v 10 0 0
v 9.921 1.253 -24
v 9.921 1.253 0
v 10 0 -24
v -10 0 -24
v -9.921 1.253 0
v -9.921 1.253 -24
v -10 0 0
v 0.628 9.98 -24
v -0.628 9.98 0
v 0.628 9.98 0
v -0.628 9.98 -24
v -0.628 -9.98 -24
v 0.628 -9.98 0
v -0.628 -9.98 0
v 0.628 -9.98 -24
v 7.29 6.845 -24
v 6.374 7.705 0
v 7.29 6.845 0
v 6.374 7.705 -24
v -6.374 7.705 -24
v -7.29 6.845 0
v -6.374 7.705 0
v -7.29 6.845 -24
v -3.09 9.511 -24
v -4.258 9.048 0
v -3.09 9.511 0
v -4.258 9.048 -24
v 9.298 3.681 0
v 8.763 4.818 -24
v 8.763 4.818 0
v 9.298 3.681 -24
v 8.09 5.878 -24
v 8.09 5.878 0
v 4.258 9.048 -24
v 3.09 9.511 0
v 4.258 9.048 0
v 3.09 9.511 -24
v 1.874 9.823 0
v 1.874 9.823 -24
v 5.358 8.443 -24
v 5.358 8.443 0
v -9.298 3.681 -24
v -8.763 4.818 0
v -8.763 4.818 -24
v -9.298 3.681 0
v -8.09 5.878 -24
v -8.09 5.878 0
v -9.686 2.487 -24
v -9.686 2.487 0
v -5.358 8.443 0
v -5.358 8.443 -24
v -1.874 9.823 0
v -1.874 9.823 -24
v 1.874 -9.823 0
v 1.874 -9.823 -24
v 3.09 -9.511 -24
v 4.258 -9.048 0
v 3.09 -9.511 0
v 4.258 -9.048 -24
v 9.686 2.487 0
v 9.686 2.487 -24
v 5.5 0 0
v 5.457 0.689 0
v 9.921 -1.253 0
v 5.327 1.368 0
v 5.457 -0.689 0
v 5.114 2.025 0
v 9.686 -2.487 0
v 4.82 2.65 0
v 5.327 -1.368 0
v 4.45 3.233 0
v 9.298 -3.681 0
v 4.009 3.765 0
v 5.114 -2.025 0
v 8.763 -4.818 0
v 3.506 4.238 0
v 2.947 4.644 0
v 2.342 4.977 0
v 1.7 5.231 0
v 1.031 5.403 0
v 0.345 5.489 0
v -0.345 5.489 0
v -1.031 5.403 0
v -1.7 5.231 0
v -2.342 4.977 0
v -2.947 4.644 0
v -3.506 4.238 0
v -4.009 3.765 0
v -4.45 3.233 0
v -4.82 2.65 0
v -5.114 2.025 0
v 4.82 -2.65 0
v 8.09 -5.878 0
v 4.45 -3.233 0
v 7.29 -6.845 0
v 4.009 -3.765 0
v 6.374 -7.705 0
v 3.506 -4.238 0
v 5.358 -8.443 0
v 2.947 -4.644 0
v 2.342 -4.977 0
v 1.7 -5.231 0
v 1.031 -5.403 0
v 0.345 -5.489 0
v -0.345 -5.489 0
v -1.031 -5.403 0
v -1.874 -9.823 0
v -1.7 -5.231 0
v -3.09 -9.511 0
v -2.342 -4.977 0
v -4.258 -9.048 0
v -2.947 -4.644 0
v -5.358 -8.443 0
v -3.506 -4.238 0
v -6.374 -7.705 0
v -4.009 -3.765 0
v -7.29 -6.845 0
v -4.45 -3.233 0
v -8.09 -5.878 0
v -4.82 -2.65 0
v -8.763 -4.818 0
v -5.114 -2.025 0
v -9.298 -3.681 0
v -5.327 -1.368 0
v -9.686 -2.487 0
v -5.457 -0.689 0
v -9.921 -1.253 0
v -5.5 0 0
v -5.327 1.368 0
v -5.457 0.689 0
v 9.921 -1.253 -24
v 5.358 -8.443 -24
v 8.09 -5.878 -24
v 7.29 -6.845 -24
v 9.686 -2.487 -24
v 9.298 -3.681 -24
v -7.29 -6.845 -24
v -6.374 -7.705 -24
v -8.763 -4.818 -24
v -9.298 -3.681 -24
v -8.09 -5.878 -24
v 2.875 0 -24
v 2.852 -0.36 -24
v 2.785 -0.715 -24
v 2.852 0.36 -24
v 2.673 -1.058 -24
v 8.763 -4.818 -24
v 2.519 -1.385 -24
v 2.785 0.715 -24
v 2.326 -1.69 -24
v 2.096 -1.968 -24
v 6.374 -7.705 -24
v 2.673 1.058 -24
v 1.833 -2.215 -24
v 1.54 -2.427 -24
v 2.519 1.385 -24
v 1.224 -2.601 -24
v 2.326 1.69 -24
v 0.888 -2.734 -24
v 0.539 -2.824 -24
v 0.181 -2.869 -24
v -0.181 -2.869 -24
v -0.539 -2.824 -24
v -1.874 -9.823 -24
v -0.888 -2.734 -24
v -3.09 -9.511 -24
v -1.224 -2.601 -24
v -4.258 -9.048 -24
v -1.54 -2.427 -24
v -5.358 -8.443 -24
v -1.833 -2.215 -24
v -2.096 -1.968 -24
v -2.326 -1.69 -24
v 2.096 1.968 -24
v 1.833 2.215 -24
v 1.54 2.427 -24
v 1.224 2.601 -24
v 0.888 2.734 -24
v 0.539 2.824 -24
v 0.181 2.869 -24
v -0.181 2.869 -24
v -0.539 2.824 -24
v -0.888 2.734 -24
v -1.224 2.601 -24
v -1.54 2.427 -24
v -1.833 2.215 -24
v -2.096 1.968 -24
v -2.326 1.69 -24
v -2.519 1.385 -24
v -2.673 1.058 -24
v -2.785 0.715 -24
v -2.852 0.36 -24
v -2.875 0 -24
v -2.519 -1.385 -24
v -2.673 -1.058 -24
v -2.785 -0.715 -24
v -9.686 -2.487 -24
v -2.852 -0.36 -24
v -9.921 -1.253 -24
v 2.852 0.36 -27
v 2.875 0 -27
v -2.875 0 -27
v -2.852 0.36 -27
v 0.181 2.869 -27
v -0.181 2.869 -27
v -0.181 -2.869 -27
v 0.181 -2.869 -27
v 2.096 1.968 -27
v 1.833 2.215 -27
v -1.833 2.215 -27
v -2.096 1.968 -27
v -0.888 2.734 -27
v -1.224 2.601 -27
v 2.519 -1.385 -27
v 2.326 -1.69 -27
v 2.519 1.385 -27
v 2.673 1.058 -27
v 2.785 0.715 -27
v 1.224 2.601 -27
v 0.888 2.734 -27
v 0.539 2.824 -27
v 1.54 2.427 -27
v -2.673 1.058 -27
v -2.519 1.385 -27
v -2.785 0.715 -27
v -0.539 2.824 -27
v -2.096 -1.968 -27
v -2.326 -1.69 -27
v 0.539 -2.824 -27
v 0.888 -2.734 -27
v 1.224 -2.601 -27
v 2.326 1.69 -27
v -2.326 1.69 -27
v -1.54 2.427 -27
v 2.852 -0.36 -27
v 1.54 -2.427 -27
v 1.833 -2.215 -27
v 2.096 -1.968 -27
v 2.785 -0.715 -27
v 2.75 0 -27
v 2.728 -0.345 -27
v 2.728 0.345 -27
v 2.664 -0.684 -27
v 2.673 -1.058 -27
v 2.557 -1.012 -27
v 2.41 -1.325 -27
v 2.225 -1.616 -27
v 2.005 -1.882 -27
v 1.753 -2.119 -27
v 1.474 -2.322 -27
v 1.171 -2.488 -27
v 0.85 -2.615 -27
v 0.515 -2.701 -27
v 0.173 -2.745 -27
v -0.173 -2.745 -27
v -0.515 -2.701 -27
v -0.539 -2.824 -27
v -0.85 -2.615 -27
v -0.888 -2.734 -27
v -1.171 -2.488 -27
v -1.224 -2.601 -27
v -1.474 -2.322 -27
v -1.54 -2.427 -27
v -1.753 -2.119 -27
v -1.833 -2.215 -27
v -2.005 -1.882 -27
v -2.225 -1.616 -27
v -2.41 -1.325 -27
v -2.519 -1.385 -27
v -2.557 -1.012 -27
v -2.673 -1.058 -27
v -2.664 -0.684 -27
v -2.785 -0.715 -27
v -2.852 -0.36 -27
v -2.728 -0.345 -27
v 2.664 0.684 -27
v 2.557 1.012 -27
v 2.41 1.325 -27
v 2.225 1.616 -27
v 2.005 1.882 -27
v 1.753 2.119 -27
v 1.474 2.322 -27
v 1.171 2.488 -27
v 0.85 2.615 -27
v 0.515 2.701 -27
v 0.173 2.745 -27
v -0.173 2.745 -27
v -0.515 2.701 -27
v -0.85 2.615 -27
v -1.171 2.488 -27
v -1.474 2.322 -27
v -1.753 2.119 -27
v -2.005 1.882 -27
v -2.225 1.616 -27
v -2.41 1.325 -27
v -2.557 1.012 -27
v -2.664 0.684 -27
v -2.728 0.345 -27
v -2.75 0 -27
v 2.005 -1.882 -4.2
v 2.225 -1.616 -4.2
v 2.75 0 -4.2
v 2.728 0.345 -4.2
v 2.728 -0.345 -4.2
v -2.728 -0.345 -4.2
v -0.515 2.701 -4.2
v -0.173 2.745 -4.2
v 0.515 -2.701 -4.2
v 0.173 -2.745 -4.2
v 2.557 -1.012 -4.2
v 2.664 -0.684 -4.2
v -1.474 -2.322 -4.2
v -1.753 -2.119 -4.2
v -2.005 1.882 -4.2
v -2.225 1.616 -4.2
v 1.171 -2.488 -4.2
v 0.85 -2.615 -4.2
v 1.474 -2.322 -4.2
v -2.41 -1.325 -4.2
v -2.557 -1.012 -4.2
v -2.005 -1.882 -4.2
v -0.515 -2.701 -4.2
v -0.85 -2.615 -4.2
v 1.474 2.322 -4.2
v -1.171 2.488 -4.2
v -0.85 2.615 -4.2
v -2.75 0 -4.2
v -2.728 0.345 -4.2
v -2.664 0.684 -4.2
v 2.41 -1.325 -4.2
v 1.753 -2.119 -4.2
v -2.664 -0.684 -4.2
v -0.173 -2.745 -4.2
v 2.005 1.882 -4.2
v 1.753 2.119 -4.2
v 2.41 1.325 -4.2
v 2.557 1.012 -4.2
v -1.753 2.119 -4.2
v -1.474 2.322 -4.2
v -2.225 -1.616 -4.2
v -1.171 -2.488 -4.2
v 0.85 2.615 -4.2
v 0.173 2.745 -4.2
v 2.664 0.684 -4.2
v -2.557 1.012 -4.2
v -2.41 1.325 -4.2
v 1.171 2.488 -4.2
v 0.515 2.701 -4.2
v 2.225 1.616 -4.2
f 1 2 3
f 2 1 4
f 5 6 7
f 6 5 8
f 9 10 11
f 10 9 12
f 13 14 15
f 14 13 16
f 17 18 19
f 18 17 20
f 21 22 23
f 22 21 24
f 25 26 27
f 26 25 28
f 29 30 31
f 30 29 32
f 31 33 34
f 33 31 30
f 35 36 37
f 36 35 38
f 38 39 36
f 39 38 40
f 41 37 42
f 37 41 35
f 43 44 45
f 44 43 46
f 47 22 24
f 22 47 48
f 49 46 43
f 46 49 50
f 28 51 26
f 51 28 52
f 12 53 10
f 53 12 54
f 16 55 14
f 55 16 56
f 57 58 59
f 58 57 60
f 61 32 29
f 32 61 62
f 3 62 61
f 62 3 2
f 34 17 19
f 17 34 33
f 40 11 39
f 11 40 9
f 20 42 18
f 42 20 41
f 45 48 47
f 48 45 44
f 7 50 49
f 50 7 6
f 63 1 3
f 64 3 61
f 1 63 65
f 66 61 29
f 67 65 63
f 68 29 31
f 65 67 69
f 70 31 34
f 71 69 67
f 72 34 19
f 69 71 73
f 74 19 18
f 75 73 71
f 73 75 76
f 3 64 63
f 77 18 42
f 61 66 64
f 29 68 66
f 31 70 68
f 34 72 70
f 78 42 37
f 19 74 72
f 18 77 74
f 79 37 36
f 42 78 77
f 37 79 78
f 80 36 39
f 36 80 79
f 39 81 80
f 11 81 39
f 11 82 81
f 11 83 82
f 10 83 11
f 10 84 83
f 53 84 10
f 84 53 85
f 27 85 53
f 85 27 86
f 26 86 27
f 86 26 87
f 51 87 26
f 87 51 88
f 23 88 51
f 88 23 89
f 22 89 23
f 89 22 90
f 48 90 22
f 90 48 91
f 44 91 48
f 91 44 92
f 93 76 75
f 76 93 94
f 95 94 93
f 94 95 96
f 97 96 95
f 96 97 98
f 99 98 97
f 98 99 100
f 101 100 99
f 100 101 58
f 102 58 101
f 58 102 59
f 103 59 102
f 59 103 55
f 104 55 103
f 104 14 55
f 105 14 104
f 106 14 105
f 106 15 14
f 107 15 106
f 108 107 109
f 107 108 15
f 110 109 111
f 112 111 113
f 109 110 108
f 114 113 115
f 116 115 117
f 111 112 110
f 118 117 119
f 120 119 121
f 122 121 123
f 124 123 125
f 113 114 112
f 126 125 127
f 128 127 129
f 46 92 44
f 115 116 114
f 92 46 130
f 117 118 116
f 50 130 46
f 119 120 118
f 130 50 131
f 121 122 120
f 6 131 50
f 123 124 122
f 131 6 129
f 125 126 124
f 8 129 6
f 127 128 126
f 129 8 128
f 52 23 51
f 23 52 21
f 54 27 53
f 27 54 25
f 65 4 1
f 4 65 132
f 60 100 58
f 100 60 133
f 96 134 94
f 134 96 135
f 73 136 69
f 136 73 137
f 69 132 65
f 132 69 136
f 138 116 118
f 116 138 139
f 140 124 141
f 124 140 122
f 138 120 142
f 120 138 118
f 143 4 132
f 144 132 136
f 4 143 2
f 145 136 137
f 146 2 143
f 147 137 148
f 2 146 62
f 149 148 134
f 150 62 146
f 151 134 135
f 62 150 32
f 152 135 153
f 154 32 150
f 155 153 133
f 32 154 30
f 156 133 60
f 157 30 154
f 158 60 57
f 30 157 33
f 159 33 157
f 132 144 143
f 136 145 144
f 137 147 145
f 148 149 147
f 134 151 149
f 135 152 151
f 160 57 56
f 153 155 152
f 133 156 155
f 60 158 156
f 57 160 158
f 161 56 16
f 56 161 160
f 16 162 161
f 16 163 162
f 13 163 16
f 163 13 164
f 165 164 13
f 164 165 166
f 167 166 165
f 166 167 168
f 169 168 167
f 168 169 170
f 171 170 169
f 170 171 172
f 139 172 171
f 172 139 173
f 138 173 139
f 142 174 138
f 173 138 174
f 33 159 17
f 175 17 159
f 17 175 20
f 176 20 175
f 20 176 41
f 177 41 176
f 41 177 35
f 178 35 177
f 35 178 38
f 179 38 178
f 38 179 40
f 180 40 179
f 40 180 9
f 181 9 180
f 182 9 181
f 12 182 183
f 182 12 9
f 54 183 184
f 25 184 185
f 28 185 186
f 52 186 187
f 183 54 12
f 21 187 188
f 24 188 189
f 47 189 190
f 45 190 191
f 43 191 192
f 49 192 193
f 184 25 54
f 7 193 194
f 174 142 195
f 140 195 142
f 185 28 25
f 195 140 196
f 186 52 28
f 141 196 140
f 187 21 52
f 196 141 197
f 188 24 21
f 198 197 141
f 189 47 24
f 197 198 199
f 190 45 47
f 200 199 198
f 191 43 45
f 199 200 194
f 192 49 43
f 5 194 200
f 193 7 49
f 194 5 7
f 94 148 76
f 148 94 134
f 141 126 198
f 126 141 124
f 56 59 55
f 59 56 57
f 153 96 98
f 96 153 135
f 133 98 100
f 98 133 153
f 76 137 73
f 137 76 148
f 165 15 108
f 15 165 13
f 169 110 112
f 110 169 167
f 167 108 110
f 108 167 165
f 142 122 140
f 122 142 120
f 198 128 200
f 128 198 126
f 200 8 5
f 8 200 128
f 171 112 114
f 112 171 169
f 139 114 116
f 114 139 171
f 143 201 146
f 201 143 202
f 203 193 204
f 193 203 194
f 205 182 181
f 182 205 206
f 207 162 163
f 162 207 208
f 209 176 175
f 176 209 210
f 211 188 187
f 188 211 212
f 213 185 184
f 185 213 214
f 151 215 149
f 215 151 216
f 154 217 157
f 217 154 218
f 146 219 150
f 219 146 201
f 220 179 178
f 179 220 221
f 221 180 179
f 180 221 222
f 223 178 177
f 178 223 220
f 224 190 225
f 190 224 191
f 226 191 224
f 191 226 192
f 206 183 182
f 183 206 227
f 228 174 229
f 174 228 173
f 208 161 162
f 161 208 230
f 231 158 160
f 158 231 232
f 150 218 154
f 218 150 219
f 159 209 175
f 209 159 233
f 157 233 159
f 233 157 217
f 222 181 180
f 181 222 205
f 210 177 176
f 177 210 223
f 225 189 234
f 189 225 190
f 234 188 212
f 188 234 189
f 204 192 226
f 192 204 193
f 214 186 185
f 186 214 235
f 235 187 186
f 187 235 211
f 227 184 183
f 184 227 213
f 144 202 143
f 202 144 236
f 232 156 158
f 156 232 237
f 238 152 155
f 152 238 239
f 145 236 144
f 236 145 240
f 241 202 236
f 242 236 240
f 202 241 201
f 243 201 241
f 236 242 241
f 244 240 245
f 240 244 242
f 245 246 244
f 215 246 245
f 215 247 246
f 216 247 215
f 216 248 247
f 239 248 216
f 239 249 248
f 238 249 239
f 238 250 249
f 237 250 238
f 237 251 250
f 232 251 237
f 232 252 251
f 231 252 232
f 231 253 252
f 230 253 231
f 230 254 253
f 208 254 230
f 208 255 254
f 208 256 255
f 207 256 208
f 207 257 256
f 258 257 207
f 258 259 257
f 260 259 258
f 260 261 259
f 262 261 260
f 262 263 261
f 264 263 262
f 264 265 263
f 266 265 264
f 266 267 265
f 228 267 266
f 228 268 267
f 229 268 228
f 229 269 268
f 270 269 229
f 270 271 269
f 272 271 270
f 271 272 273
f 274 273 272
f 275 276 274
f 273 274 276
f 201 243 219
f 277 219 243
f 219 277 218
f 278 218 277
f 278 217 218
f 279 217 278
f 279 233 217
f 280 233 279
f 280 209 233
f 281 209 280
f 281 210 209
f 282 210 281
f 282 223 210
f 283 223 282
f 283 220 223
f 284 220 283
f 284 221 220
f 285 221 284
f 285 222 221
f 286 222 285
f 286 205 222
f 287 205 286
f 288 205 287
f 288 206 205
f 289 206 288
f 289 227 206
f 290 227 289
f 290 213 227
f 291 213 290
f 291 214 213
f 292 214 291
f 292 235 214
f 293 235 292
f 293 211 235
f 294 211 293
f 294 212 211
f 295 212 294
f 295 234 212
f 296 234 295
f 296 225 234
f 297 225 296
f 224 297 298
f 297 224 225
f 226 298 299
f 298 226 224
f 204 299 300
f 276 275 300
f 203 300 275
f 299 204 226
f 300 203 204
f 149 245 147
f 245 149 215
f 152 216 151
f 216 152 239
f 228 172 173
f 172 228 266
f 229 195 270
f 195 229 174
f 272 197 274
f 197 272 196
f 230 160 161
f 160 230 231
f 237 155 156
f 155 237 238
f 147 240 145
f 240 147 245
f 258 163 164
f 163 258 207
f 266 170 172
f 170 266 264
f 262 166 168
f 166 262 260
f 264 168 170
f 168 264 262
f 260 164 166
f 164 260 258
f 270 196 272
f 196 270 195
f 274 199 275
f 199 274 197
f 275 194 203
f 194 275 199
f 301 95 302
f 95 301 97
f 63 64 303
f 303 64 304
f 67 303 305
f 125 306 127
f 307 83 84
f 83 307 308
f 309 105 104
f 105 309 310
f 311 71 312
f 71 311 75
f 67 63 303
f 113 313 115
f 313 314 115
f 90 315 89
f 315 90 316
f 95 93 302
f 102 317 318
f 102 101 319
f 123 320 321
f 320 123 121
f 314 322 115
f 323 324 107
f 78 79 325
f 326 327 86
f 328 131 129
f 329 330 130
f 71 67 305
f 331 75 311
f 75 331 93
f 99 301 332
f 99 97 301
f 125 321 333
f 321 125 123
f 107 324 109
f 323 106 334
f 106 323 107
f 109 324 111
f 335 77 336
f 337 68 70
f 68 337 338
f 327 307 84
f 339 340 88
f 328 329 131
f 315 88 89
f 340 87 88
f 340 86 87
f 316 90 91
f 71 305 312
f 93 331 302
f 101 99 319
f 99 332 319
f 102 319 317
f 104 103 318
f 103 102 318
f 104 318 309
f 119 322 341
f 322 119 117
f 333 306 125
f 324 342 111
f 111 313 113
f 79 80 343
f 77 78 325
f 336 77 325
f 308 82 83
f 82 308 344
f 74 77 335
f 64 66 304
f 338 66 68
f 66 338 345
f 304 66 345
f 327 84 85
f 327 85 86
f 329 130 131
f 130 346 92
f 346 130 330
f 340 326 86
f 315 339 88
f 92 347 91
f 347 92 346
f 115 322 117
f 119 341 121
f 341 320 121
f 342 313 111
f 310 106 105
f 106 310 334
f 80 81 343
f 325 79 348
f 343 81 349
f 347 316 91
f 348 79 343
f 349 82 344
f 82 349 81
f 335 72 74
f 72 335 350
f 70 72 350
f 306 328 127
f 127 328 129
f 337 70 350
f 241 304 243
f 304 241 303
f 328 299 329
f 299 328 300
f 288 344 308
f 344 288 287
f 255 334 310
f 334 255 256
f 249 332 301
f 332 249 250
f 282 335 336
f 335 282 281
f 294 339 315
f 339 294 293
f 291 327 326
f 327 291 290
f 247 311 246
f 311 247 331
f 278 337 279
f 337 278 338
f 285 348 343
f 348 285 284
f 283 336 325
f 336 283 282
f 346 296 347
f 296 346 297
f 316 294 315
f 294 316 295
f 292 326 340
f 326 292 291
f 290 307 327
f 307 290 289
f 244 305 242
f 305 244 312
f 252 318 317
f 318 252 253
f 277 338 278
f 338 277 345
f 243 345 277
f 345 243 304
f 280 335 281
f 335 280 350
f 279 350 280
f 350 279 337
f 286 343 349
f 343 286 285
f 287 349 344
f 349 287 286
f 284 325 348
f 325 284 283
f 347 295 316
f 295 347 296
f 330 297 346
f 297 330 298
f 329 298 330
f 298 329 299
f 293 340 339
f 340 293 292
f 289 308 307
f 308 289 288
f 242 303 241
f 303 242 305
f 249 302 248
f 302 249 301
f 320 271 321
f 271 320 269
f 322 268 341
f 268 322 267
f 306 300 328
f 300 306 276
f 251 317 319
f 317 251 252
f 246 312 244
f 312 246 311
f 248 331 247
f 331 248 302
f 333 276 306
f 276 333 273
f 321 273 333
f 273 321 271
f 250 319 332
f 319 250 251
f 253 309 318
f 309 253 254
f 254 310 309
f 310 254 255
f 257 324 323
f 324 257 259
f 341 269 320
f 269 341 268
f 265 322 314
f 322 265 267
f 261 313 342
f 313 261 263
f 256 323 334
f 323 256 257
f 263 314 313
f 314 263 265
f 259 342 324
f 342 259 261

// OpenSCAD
$fn = 50;

difference() {
	union() {
		translate(v = [0, 0, -24.0]) {
			cylinder(h = 24, r = 10.0);
		}
		#translate(v = [0, 0, -27.0]) {
			cylinder(h = 27, r = 2.875);
		}
	}
	union() {
		translate(v = [0, 0, 0]) {
			rotate(a = [0, 0, 0]) {
				difference() {
					union() {
						translate(v = [0, 0, -27.0]) {
							cylinder(h = 27, r = 2.25);
						}
						translate(v = [0, 0, -4.2]) {
							cylinder(h = 4.2, r1 = 2.75, r2 = 5.5);
						}
						translate(v = [0, 0, -27.0]) {
							cylinder(h = 27, r = 2.75);
						}
						translate(v = [0, 0, -27.0]) {
							cylinder(h = 27, r = 2.25);
						}
					}
					union();
				}
			}
		}
	}
}
